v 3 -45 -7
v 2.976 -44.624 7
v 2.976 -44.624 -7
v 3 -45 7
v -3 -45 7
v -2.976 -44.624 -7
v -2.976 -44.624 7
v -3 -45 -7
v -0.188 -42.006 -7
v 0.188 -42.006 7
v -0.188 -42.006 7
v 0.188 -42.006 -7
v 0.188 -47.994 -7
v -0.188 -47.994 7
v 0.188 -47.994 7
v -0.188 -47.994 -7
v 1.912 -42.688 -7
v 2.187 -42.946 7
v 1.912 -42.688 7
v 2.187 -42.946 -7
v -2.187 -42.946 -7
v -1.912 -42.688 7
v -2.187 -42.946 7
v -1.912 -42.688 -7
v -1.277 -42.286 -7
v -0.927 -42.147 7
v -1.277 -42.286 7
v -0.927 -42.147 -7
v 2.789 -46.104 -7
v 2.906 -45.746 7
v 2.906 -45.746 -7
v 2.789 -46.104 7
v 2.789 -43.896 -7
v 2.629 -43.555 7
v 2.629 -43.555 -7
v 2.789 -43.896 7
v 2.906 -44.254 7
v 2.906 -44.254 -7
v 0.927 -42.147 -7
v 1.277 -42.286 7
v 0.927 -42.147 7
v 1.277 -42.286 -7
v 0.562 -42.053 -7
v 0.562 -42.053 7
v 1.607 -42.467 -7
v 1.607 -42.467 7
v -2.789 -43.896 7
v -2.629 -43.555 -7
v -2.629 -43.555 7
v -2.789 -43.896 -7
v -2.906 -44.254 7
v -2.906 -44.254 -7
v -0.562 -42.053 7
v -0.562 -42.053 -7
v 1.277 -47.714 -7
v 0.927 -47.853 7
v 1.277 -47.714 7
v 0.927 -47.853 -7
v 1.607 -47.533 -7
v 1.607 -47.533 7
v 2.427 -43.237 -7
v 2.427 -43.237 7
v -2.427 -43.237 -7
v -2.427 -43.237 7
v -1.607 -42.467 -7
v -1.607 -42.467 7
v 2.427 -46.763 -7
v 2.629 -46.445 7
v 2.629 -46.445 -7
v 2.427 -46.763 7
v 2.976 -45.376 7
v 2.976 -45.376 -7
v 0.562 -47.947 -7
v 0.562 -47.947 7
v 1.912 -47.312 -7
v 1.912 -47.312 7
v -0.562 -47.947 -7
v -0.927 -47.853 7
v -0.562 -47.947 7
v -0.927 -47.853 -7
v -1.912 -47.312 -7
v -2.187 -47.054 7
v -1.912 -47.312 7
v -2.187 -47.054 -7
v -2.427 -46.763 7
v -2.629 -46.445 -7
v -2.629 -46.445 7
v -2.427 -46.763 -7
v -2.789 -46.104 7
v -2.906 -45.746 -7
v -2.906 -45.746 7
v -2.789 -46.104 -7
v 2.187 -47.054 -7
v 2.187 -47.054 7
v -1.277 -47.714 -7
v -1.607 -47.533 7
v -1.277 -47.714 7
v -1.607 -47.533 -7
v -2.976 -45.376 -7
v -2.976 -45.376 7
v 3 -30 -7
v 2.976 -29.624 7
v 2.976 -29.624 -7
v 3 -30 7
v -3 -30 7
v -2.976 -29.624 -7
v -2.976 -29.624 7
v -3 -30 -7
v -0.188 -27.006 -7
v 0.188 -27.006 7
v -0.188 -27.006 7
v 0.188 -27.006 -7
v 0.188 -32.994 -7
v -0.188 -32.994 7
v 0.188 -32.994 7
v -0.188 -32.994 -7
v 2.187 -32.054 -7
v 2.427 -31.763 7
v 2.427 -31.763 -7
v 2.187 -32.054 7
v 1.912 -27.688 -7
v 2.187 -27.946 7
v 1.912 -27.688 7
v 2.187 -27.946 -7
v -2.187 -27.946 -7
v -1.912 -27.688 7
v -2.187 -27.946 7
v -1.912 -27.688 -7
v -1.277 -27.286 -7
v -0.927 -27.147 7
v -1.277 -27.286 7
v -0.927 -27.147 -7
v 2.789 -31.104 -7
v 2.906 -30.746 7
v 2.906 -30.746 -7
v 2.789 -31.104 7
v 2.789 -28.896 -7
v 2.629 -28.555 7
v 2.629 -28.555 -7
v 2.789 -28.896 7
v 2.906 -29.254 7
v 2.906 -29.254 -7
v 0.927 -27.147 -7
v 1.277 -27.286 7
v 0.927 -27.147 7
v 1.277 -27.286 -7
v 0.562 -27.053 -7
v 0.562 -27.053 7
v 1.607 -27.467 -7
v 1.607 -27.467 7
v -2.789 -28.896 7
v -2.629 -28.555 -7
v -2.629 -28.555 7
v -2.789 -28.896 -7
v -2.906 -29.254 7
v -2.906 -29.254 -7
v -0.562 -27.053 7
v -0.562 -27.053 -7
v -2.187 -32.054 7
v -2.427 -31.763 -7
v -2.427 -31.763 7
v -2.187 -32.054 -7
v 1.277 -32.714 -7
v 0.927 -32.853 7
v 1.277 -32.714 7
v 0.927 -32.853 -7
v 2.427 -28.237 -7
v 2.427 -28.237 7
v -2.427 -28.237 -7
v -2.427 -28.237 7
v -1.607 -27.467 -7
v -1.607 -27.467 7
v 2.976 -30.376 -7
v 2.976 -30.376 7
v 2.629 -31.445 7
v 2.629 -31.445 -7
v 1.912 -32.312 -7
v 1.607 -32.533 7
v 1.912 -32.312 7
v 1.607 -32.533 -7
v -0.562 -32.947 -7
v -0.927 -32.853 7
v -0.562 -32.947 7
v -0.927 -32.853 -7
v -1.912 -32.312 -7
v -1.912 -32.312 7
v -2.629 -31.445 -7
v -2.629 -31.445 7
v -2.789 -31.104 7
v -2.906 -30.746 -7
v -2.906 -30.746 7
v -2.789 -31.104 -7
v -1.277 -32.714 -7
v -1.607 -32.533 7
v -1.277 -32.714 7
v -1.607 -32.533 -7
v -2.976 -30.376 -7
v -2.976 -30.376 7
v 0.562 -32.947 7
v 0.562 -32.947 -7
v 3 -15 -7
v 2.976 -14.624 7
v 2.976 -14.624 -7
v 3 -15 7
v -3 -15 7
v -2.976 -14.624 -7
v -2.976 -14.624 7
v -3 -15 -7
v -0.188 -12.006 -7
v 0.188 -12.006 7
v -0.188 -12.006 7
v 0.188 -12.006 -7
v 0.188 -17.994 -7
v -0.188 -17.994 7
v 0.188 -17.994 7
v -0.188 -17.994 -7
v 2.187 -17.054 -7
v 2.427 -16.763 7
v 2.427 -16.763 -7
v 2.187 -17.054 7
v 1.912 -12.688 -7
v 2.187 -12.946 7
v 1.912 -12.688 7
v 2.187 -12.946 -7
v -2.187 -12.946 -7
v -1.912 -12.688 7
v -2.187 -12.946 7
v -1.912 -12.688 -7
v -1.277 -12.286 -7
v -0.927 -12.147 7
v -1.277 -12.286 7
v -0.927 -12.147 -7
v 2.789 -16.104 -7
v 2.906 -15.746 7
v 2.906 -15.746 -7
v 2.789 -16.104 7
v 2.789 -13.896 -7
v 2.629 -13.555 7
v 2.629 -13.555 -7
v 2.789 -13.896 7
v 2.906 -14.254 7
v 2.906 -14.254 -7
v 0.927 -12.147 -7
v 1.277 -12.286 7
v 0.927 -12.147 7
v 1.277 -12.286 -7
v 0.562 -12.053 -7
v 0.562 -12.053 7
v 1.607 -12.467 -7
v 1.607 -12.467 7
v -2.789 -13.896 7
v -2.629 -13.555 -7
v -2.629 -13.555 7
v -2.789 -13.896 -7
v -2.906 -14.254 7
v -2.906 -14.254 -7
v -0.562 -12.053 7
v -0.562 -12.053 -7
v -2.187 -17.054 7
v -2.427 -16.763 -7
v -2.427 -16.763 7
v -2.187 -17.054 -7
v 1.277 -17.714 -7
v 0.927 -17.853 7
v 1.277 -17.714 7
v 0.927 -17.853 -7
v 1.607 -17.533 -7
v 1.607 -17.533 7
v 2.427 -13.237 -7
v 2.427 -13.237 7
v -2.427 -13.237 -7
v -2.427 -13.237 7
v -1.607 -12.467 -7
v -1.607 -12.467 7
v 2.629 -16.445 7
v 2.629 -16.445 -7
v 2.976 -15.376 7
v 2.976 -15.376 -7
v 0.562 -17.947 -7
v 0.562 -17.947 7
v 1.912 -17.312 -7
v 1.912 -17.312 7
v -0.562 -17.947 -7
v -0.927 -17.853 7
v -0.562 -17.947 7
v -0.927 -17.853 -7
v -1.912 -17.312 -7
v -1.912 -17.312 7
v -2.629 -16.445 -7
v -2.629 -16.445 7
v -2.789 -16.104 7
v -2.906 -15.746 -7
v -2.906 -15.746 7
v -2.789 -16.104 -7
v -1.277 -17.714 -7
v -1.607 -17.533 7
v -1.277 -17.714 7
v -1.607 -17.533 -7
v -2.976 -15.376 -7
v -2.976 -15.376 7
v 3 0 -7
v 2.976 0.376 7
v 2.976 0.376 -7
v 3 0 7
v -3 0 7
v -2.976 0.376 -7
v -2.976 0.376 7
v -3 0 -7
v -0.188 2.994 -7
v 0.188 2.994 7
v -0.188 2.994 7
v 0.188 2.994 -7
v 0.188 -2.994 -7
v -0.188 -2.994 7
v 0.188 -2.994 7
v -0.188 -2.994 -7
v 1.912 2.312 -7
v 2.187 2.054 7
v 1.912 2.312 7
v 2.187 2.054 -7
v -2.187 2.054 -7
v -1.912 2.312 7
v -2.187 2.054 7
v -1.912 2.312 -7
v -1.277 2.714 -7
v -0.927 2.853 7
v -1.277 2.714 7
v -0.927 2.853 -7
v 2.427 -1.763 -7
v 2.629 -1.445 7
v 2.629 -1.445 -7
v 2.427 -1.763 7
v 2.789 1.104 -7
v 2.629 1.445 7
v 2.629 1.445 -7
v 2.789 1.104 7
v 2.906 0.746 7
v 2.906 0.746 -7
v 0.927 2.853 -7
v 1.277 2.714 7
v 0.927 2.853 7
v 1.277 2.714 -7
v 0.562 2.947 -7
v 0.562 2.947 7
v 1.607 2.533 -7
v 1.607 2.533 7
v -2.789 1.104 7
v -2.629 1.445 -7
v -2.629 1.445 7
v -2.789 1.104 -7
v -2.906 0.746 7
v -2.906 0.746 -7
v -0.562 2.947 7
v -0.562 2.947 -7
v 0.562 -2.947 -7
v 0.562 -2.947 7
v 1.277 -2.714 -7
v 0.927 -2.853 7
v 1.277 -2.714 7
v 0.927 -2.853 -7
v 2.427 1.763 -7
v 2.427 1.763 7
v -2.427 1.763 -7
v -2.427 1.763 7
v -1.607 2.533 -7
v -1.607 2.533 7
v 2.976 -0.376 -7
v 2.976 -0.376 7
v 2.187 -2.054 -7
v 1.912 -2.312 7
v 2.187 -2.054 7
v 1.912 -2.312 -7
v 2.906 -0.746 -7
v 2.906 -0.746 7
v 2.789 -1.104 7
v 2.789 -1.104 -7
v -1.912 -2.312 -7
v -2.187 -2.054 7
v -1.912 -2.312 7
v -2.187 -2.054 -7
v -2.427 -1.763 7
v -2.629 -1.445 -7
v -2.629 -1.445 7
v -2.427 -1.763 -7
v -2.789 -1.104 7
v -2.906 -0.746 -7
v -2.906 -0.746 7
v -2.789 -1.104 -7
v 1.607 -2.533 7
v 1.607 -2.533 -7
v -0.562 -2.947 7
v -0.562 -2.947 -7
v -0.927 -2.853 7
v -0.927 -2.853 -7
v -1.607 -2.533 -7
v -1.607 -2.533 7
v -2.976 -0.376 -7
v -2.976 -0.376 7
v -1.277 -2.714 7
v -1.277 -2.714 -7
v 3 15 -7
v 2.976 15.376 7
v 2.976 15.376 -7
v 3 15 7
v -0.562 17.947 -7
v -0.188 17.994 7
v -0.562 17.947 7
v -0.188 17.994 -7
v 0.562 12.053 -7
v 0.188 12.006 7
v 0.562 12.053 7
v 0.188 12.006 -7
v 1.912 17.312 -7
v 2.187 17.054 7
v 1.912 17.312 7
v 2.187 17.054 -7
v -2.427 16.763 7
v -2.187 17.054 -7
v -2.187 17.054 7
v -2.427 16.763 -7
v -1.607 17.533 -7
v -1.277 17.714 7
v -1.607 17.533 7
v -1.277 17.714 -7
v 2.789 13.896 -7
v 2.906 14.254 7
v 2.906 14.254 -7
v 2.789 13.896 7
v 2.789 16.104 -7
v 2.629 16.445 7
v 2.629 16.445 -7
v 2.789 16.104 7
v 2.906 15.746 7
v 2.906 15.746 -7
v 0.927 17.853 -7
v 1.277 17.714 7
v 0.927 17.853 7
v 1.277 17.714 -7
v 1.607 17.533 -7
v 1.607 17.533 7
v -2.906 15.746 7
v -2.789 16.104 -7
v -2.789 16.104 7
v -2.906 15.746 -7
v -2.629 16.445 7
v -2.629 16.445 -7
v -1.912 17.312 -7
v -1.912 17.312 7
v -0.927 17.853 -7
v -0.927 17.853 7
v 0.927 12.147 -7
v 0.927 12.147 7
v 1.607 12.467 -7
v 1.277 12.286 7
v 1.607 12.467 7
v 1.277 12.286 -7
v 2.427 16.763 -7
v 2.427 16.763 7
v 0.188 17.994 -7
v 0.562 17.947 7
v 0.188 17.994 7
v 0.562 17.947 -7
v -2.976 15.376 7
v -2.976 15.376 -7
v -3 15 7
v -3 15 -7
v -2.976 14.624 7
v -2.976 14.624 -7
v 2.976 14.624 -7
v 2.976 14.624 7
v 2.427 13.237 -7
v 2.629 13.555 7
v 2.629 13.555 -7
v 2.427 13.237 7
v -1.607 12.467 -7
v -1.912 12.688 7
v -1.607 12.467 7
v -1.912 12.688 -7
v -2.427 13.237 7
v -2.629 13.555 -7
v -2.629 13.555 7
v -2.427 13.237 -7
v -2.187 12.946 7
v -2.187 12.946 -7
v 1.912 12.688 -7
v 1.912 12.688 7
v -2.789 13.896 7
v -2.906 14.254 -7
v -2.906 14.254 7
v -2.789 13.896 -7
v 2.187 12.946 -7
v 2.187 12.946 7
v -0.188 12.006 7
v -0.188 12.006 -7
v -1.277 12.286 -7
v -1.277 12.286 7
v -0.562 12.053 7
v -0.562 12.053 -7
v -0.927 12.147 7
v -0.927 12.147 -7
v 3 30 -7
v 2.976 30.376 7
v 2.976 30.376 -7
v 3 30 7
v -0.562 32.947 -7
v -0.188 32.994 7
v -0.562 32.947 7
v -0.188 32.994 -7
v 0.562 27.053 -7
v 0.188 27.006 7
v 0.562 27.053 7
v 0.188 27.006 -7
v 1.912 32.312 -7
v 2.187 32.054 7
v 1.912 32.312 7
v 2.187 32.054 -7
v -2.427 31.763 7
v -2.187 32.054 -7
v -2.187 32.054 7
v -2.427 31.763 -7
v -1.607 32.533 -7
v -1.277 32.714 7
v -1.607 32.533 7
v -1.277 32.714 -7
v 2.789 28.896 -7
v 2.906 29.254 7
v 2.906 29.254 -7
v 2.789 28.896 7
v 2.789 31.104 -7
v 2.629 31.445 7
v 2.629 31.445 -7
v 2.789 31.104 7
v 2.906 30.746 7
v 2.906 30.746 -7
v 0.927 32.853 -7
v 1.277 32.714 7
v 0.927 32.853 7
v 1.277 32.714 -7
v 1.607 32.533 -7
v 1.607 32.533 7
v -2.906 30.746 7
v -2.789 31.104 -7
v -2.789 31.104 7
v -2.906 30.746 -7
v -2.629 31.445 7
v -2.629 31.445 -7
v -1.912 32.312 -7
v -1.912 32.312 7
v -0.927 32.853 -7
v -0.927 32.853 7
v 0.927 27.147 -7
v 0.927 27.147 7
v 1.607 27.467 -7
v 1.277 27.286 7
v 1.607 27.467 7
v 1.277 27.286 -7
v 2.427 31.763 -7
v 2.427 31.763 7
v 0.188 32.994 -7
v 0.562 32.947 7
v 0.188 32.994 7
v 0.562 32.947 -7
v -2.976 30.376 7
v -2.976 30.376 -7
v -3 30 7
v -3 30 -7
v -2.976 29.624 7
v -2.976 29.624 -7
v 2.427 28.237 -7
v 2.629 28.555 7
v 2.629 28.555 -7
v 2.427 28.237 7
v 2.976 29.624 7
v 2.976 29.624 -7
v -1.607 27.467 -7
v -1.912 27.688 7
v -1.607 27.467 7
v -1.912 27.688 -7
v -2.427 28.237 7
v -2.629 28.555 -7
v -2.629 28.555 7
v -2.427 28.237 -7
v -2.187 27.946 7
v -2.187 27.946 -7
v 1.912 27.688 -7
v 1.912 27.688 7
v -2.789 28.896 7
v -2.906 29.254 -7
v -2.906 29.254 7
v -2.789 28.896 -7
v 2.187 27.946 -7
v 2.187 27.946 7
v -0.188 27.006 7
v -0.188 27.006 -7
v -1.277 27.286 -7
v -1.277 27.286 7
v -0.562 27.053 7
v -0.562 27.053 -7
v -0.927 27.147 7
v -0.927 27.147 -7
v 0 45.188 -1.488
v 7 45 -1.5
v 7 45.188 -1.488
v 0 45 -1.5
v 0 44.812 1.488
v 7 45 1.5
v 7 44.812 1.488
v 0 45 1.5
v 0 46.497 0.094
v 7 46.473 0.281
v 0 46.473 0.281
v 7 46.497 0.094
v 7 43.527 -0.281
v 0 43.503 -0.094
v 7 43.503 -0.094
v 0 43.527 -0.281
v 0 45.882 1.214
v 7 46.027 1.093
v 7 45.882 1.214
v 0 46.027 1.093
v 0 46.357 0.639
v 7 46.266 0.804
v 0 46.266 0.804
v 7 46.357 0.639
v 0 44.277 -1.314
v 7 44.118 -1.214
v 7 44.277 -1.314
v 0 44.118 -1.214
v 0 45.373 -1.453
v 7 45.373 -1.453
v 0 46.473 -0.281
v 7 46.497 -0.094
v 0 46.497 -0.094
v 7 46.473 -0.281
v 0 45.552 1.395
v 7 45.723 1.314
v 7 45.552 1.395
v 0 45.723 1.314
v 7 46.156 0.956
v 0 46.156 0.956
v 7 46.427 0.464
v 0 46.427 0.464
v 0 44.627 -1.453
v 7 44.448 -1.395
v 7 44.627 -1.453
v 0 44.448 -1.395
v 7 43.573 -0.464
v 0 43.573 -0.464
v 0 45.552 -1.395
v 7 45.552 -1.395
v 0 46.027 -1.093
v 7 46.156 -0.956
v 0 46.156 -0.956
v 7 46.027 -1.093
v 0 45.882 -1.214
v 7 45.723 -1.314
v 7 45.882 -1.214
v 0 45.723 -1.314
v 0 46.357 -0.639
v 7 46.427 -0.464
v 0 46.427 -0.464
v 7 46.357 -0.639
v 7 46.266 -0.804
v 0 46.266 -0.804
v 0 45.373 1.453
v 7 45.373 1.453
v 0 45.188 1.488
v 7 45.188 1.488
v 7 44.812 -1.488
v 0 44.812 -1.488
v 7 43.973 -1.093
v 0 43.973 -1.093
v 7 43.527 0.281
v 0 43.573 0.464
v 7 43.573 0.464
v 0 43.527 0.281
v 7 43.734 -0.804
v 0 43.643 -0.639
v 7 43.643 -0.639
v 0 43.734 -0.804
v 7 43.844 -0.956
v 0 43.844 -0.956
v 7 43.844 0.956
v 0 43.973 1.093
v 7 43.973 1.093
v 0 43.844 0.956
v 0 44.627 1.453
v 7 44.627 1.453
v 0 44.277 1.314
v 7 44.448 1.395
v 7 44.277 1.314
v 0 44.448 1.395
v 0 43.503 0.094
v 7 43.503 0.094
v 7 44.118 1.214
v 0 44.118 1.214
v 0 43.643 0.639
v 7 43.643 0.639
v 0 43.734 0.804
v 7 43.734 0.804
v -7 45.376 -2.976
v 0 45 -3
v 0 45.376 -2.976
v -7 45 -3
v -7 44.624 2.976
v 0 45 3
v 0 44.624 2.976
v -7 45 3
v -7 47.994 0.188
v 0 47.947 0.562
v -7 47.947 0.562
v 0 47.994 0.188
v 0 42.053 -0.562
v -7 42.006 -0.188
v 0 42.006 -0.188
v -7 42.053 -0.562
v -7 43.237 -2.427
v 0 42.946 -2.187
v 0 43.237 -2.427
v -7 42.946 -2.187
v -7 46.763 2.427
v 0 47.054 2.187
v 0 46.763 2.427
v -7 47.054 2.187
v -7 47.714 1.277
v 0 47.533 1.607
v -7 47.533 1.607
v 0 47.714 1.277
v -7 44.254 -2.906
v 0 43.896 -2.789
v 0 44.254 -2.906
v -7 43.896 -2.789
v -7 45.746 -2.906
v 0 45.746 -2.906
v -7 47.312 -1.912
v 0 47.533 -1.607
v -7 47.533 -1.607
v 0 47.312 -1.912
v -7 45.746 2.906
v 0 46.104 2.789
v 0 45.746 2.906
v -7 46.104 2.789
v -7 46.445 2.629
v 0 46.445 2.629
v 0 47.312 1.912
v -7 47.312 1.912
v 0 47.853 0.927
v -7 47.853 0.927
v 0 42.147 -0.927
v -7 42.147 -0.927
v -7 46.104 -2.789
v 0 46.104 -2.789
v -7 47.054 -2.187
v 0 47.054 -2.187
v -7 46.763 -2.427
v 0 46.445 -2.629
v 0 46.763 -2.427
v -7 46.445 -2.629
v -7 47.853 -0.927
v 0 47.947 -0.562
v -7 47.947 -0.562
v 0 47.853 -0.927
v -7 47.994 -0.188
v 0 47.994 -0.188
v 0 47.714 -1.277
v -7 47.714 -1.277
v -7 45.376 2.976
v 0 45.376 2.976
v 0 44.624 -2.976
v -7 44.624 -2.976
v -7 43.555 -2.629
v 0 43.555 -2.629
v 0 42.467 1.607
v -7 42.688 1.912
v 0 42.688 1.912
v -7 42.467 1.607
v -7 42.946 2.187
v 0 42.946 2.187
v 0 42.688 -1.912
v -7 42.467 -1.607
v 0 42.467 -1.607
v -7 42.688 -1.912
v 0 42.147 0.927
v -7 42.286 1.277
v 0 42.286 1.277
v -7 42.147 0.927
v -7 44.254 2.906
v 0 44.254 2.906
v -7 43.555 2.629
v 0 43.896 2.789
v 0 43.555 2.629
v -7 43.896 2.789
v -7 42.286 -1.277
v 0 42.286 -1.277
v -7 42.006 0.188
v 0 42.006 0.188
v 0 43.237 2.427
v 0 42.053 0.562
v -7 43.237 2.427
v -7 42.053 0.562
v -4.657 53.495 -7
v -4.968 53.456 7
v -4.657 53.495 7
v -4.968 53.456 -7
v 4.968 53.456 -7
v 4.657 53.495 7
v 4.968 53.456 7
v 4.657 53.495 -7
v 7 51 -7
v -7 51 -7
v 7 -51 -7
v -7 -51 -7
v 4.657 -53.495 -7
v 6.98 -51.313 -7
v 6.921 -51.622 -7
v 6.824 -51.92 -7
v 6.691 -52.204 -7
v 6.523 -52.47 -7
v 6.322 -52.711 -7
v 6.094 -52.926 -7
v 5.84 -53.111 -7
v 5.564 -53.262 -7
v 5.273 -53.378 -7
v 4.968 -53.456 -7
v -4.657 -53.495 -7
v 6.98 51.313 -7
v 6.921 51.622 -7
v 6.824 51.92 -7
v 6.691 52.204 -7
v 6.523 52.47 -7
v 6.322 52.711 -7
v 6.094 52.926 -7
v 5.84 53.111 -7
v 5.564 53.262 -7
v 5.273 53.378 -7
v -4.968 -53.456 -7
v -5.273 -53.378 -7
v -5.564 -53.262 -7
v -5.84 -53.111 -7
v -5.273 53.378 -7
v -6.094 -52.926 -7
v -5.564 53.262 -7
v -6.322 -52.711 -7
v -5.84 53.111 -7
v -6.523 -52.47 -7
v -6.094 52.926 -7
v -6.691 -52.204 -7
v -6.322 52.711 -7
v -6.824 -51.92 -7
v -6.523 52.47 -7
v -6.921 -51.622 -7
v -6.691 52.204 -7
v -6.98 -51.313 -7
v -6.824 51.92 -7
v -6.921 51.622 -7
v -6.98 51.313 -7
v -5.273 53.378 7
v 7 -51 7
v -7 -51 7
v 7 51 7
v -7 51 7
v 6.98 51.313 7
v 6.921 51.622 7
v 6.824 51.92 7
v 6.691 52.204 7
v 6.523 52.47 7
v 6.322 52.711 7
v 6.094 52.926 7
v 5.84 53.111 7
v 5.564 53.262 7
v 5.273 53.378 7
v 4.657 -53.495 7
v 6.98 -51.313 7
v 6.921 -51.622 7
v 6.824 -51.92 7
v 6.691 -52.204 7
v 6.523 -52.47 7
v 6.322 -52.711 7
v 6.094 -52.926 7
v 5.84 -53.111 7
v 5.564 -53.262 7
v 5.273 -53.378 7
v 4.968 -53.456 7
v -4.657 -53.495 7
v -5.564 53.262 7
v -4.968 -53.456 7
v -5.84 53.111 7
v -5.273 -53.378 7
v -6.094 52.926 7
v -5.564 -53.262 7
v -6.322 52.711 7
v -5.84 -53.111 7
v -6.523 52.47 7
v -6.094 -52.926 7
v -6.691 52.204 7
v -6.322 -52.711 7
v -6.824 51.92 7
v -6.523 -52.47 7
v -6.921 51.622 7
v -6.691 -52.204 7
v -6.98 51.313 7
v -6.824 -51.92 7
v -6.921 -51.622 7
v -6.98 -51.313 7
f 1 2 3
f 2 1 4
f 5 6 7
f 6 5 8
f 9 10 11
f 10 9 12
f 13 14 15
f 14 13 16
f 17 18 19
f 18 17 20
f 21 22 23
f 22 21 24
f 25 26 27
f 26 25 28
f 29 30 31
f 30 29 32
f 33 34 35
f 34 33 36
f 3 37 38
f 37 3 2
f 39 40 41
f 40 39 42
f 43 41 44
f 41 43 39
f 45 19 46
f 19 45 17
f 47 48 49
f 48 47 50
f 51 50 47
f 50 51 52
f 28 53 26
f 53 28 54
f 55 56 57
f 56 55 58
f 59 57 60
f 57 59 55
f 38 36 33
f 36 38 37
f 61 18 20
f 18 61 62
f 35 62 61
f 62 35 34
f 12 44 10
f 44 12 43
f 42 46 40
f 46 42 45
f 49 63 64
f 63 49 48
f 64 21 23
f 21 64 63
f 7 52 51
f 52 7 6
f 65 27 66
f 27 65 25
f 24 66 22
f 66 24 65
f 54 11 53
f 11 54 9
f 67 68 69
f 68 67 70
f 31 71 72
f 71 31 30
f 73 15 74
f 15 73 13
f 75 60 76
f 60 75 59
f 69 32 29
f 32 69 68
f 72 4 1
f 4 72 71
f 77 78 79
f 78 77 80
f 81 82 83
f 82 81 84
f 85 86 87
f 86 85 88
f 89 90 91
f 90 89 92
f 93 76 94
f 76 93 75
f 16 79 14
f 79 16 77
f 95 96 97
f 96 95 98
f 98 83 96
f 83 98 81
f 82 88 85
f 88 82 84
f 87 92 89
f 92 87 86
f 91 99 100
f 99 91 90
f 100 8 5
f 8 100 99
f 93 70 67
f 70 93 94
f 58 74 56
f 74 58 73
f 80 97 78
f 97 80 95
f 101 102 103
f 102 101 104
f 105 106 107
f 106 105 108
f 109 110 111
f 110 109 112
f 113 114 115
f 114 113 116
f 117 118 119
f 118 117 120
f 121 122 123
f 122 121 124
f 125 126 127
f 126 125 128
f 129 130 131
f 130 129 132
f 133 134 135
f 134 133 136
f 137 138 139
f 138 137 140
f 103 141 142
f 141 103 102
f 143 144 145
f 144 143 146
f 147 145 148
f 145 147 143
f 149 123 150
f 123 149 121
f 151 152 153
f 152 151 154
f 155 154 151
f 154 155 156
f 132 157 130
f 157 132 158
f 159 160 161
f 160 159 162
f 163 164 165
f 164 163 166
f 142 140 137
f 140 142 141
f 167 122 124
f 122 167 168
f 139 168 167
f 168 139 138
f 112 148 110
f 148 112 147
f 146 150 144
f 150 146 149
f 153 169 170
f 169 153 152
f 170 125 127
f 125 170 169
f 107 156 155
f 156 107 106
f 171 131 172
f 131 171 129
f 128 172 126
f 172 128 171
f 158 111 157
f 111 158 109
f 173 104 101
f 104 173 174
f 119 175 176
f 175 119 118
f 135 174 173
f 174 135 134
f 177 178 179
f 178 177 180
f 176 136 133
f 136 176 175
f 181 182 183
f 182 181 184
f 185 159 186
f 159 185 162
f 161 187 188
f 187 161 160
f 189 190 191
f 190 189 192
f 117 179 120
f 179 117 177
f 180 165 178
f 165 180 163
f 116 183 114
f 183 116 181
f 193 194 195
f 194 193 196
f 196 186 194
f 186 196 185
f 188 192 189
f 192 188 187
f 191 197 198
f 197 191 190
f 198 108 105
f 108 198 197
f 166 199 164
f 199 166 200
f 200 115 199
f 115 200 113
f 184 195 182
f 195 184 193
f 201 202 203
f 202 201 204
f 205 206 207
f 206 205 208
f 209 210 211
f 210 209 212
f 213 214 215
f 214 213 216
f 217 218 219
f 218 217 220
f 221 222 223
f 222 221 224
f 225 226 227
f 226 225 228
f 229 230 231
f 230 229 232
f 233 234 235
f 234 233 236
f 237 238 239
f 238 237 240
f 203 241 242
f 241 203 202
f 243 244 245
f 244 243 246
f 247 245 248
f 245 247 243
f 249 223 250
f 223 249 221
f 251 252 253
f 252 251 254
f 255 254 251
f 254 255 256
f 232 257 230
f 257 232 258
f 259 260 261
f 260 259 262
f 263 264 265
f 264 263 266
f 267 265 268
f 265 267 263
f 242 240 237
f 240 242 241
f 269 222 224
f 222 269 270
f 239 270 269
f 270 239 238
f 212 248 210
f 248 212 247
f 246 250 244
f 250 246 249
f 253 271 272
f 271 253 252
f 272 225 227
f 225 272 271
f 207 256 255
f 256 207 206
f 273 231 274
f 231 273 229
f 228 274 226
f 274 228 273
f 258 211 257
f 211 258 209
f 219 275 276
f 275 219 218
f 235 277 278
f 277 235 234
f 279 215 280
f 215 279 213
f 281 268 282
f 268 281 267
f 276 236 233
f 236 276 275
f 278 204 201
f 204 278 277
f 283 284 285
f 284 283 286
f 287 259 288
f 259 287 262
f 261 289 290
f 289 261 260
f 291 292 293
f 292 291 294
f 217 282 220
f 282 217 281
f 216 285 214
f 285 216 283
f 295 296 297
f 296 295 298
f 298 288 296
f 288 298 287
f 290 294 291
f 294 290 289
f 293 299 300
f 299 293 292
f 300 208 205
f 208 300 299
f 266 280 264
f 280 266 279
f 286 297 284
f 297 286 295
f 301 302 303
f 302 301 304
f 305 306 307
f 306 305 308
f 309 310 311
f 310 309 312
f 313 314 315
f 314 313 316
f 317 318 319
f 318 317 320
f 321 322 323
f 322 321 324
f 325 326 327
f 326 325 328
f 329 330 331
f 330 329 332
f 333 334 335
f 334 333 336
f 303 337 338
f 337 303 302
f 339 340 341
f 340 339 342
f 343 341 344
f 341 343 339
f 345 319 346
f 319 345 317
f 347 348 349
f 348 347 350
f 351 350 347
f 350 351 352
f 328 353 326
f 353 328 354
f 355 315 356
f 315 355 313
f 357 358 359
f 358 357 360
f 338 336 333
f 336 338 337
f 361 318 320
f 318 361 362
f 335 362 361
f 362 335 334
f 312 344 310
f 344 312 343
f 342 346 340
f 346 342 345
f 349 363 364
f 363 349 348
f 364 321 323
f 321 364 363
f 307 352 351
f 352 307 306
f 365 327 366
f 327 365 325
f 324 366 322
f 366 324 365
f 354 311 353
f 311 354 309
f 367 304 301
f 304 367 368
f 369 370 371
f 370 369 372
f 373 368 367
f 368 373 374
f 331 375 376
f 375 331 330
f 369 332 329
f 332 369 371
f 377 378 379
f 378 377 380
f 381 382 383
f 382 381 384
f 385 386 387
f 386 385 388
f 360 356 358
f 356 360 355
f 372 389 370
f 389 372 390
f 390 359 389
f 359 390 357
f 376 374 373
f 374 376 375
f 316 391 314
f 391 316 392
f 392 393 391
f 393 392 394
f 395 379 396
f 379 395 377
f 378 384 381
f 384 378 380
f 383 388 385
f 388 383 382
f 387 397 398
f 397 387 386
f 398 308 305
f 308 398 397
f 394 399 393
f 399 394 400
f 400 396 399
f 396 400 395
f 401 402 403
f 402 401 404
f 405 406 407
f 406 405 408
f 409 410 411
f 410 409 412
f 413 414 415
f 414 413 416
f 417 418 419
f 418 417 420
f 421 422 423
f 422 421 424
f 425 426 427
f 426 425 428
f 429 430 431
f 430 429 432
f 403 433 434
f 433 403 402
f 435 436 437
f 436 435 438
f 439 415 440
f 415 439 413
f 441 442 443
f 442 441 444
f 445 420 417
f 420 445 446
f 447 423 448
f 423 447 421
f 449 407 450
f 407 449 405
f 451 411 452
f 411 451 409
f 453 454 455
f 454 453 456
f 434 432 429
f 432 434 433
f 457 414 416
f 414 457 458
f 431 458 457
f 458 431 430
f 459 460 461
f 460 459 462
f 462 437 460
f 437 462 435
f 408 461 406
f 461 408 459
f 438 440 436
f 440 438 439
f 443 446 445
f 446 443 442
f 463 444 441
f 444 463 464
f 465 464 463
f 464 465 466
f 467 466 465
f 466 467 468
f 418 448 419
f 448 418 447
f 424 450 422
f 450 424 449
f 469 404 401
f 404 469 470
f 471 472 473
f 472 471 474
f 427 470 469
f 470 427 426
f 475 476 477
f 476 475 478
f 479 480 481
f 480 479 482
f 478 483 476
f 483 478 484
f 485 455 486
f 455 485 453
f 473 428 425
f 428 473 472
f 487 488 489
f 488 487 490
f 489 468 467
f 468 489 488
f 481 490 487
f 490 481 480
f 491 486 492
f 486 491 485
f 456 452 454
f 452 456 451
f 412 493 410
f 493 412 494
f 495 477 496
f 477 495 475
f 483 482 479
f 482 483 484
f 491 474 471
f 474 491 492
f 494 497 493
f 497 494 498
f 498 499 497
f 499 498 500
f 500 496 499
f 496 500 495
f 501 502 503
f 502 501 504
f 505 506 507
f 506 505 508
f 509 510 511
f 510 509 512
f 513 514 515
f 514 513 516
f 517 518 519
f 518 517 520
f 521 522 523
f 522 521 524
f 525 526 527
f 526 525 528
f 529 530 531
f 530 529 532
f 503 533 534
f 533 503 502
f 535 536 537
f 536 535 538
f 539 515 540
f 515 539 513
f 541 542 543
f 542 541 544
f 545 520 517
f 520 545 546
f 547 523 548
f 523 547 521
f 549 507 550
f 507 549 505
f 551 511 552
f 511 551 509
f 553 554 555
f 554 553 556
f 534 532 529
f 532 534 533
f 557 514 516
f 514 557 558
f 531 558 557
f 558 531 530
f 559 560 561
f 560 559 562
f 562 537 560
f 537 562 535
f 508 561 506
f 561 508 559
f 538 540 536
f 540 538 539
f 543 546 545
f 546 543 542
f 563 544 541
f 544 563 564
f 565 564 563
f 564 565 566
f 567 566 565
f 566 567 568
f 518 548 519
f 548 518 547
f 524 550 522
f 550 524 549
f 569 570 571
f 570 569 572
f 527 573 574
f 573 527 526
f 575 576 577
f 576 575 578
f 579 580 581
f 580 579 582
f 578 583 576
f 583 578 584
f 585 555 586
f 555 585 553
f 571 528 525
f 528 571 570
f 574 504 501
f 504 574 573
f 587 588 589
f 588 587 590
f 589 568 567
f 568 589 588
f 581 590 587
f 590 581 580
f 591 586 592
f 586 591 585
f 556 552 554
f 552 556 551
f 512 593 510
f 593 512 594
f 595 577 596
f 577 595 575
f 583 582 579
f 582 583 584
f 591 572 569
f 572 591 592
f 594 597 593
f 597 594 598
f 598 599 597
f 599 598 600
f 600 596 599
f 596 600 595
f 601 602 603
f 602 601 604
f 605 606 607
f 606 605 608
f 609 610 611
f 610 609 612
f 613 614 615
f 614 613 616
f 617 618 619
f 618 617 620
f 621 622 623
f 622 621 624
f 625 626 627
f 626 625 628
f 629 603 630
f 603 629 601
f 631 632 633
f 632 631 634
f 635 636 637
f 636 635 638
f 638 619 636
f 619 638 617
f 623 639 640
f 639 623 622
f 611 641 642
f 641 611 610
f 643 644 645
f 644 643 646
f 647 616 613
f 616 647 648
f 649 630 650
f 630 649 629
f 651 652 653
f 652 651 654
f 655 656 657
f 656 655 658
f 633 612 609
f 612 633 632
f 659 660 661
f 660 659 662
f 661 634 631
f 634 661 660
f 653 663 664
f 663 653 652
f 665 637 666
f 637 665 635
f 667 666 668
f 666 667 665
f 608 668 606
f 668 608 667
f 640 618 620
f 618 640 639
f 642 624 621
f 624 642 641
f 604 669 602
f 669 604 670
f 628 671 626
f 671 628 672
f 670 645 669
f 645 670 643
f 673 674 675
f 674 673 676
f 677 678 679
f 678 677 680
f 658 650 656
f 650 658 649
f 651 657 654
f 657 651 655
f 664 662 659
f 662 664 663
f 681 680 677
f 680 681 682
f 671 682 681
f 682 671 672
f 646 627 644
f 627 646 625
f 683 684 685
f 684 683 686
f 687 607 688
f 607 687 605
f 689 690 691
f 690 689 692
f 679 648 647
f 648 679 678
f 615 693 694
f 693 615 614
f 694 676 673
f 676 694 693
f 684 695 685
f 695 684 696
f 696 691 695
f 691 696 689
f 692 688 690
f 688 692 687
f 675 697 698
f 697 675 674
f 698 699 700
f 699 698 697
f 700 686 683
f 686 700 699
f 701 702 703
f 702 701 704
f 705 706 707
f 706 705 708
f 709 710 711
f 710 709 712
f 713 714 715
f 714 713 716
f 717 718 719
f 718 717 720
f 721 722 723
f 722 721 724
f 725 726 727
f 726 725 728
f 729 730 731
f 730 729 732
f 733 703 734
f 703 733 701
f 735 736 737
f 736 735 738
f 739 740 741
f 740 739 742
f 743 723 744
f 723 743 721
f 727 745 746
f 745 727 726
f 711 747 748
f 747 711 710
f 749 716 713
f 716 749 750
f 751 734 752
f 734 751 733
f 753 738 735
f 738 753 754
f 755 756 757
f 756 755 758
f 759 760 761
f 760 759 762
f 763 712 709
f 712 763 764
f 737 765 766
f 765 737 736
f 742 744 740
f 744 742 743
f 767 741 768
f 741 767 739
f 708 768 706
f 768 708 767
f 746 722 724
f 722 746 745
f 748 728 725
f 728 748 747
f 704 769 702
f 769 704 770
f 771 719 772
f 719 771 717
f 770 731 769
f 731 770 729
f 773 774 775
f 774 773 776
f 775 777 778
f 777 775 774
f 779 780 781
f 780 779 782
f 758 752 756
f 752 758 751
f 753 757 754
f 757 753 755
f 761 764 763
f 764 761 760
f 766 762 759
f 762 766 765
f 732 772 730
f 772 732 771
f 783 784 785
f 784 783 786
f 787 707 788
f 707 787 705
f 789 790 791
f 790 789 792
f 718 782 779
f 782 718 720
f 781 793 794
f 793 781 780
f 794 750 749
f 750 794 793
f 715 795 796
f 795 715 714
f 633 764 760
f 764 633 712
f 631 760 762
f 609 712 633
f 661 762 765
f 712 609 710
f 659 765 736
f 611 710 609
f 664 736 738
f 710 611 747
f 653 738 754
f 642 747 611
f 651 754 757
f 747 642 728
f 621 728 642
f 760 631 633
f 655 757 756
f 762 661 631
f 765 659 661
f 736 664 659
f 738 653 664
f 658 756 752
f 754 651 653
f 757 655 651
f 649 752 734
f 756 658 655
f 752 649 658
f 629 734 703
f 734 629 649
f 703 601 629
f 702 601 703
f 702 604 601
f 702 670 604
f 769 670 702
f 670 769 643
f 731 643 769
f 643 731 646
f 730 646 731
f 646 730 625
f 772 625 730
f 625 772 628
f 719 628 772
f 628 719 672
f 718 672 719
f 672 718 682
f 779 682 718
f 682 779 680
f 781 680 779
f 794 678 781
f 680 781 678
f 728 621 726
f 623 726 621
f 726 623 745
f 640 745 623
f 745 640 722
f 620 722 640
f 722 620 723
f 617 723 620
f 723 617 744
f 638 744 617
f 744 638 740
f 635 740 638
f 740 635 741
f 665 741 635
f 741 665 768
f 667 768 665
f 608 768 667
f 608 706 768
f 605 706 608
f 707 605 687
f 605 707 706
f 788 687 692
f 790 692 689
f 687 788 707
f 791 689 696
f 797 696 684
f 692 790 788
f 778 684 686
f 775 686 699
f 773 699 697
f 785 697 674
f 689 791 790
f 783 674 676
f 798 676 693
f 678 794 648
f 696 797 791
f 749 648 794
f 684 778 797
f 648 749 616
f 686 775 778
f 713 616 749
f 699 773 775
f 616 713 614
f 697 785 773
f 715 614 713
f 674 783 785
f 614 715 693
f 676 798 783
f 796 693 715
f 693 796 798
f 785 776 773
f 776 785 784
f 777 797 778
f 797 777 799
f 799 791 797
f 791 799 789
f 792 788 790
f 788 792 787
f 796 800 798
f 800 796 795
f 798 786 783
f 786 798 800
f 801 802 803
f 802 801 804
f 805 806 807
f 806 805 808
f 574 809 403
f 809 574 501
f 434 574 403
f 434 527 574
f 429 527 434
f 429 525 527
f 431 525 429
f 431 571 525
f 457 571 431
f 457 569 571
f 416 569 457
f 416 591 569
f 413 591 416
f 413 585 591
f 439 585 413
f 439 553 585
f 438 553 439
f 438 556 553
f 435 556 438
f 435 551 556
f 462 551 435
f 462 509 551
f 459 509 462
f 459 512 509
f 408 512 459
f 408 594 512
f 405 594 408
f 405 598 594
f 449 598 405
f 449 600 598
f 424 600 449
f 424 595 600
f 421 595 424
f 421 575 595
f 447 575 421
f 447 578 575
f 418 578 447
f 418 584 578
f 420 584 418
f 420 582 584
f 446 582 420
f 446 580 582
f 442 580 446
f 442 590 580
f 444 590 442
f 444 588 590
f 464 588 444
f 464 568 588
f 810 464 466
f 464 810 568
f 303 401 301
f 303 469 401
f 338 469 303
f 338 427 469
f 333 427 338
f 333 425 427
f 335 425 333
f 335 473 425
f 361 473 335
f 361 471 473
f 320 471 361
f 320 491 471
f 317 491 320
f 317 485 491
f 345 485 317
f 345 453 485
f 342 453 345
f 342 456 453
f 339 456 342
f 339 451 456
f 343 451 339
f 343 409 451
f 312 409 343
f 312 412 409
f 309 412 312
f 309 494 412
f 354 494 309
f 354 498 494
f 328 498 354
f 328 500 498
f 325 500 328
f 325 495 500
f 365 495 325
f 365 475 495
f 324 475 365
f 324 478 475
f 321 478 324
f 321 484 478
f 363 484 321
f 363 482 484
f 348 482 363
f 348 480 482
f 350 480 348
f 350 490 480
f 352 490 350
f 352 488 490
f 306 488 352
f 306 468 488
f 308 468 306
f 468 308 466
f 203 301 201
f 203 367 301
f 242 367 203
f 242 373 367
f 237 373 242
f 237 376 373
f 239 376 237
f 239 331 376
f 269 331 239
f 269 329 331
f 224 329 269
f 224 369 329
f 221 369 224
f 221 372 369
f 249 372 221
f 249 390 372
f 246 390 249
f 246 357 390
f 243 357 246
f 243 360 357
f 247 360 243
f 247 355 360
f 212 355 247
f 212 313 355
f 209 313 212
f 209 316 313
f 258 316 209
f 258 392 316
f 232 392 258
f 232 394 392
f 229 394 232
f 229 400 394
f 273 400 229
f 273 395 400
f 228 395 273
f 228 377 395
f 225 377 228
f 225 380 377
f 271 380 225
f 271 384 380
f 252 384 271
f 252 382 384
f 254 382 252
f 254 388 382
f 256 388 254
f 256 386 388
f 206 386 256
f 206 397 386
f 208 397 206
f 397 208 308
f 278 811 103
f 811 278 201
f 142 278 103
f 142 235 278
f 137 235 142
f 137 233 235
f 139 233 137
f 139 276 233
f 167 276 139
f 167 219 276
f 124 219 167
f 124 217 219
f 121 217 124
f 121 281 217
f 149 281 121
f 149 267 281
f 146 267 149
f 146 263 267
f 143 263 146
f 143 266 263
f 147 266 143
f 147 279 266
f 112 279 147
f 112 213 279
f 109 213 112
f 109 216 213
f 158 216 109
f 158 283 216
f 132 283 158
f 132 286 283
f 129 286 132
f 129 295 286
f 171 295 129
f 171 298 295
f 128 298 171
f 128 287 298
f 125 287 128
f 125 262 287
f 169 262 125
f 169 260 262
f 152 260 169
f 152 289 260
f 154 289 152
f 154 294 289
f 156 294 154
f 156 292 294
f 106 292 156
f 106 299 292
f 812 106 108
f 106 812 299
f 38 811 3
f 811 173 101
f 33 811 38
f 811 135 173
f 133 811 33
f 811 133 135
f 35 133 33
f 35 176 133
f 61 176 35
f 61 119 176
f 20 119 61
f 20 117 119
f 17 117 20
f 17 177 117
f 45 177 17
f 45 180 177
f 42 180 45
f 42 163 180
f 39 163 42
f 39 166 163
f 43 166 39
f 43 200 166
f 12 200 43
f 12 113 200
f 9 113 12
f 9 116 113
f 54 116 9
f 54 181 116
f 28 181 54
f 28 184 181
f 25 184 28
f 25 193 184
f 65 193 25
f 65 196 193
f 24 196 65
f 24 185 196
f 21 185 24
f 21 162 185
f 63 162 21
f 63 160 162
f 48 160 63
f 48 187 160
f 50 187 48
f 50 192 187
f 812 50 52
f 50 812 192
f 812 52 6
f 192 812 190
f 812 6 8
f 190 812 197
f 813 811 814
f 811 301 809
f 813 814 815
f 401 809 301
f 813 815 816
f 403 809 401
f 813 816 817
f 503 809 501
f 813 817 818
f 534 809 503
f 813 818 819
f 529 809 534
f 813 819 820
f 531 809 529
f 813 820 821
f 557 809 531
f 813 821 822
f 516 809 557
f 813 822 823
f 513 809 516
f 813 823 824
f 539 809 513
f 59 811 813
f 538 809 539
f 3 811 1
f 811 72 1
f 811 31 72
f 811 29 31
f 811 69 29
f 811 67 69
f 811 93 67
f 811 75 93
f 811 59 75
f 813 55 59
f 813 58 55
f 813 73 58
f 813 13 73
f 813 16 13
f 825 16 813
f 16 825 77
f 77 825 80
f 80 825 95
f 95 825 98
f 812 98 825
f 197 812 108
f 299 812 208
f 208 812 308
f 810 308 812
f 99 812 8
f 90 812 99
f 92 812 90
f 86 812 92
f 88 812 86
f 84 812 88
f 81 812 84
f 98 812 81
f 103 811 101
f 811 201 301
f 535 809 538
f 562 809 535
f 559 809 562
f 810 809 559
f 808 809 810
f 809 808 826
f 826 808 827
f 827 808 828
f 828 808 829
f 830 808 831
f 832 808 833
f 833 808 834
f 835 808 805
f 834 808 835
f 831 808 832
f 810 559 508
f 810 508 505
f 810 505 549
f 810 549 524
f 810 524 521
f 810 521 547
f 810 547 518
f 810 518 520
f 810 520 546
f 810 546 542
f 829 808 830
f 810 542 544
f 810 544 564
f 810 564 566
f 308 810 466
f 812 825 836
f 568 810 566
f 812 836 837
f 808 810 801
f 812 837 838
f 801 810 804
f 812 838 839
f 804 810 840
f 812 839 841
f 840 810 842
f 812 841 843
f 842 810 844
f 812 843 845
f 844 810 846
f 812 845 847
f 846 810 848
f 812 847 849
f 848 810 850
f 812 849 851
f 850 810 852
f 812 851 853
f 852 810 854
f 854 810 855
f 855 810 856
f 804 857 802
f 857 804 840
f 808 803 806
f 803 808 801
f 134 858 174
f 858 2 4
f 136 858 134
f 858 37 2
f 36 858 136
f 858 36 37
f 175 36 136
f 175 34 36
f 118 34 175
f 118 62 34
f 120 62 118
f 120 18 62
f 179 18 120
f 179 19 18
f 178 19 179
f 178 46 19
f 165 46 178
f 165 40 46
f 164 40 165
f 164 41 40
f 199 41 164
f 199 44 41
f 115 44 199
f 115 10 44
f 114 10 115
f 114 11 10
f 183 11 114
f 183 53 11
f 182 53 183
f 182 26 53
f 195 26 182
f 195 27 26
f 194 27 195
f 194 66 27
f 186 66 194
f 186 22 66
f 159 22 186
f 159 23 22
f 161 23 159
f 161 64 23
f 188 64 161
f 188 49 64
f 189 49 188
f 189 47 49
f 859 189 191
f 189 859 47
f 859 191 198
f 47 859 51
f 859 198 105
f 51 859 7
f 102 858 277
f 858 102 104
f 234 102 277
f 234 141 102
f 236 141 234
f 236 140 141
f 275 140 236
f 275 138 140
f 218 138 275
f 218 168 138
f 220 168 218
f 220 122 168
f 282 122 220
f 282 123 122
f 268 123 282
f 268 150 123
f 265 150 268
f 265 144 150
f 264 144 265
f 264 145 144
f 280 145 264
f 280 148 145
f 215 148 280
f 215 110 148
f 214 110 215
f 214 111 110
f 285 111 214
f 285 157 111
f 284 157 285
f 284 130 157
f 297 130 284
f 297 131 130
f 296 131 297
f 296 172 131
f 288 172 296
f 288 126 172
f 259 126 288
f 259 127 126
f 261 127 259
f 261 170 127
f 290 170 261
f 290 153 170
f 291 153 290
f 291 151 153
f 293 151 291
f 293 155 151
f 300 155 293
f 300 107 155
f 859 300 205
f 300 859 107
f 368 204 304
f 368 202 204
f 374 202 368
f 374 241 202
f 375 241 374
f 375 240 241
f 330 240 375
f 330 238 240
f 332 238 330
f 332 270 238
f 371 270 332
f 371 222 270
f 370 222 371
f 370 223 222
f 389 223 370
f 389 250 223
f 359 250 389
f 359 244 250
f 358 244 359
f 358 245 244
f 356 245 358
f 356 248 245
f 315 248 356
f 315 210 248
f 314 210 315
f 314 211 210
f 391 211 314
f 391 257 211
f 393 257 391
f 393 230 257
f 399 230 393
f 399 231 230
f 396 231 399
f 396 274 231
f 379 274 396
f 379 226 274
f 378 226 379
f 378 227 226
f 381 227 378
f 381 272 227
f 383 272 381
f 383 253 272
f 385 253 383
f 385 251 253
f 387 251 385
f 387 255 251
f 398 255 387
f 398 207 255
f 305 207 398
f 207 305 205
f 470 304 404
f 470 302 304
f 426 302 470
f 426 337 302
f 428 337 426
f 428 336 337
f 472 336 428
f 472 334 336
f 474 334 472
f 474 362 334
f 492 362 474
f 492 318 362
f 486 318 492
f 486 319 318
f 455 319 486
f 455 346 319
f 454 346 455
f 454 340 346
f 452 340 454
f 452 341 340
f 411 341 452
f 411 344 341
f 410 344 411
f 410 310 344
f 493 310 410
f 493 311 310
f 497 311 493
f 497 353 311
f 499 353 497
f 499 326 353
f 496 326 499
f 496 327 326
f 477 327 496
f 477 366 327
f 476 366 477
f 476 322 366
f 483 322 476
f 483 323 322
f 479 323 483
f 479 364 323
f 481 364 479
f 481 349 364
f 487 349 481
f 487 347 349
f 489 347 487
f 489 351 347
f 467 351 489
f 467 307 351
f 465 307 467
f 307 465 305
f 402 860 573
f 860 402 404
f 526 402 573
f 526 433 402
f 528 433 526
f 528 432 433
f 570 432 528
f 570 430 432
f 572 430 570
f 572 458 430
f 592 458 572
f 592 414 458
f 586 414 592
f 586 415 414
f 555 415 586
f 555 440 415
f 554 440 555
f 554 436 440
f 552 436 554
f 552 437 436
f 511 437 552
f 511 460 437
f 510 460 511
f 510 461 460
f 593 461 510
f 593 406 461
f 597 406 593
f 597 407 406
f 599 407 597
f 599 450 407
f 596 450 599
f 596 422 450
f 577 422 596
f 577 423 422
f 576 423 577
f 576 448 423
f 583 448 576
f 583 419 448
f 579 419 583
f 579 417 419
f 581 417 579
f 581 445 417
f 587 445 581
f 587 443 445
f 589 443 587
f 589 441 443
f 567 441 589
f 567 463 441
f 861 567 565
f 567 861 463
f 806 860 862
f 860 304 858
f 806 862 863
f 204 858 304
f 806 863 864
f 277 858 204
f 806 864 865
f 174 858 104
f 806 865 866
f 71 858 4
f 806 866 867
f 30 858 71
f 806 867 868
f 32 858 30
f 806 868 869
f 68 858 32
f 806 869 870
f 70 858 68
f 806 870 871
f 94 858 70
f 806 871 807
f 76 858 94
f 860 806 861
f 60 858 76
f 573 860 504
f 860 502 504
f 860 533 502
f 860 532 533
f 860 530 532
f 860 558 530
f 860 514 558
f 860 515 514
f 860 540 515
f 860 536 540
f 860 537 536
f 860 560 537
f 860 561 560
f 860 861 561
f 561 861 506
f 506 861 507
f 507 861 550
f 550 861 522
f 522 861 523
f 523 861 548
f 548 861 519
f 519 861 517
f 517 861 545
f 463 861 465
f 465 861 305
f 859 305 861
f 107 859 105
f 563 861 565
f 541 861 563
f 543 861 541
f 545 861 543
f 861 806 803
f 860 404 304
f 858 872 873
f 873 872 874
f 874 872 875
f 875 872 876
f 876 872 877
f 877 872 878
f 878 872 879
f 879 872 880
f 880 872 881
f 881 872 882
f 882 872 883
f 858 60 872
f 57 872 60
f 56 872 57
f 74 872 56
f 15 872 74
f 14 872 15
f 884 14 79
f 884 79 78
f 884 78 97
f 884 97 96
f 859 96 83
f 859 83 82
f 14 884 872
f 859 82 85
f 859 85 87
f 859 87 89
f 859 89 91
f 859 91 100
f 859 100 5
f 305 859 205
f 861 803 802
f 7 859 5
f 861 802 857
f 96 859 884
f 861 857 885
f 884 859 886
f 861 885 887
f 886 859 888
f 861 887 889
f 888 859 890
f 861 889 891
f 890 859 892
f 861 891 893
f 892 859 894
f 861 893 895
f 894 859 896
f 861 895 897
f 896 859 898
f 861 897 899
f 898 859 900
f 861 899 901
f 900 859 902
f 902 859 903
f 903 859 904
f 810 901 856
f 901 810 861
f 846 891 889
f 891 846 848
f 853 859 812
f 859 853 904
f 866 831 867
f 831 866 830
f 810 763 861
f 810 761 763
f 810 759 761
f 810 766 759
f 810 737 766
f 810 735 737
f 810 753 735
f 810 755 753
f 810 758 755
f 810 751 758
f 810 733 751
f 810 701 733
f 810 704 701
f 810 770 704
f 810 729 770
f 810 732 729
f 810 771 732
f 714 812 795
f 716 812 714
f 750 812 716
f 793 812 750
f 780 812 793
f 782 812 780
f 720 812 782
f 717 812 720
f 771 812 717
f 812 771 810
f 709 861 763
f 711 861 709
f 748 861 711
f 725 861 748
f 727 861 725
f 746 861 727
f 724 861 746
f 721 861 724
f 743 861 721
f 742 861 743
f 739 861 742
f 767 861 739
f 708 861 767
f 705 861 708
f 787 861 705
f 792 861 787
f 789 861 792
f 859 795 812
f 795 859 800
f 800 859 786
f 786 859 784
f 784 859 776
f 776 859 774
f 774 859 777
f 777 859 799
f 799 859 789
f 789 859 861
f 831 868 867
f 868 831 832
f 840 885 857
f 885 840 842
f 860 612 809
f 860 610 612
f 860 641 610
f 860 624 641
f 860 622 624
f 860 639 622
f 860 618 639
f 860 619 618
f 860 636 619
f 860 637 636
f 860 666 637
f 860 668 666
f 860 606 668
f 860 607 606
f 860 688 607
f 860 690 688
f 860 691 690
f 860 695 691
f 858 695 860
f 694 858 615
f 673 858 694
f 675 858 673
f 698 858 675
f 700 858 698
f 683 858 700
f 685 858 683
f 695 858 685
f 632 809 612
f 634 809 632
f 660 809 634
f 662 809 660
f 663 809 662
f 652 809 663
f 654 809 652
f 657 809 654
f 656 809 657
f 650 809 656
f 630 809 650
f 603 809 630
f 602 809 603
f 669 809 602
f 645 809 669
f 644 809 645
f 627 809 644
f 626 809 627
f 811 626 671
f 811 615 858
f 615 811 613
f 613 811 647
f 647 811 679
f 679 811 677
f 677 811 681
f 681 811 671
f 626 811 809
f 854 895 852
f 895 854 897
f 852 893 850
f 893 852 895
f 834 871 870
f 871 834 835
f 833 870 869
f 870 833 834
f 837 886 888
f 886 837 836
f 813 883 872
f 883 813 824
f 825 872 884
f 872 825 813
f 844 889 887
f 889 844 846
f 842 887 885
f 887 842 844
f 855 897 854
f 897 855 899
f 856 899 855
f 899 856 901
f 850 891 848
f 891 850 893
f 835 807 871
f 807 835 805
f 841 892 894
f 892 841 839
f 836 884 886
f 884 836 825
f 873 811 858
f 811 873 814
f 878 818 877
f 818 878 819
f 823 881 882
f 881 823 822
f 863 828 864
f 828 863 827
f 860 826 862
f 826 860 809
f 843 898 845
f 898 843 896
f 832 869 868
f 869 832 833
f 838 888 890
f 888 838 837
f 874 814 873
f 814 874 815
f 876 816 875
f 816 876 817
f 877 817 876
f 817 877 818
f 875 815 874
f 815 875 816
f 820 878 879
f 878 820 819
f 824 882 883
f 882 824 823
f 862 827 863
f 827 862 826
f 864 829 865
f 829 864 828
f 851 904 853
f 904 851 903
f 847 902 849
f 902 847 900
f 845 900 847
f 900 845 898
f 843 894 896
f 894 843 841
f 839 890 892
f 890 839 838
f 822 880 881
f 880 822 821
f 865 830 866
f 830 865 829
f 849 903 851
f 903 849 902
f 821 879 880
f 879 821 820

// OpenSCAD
$fn = 50;


difference() {
	union() {
		translate(v = [0, 0, -7.0000000000]) {
			hull() {
				translate(v = [-4.5000000000, 51.0000000000, 0]) {
					cylinder(h = 14, r = 2.5000000000);
				}
				translate(v = [4.5000000000, 51.0000000000, 0]) {
					cylinder(h = 14, r = 2.5000000000);
				}
				translate(v = [-4.5000000000, -51.0000000000, 0]) {
					cylinder(h = 14, r = 2.5000000000);
				}
				translate(v = [4.5000000000, -51.0000000000, 0]) {
					cylinder(h = 14, r = 2.5000000000);
				}
			}
		}
	}
	union() {
		translate(v = [0.0000000000, -45.0000000000, -100.0000000000]) {
			cylinder(h = 200, r = 3.0000000000);
		}
		translate(v = [0.0000000000, -30.0000000000, -100.0000000000]) {
			cylinder(h = 200, r = 3.0000000000);
		}
		translate(v = [0.0000000000, -15.0000000000, -100.0000000000]) {
			cylinder(h = 200, r = 3.0000000000);
		}
		translate(v = [0.0000000000, 0.0000000000, -100.0000000000]) {
			cylinder(h = 200, r = 3.0000000000);
		}
		translate(v = [0.0000000000, 15.0000000000, -100.0000000000]) {
			cylinder(h = 200, r = 3.0000000000);
		}
		translate(v = [0.0000000000, 30.0000000000, -100.0000000000]) {
			cylinder(h = 200, r = 3.0000000000);
		}
		translate(v = [-50, 45, 0]) {
			rotate(a = [0, 90, 0]) {
				cylinder(h = 100, r = 1.5000000000);
			}
		}
		translate(v = [-100, 45, 0]) {
			rotate(a = [0, 90, 0]) {
				cylinder(h = 100, r = 3.0000000000);
			}
		}
	}
}
